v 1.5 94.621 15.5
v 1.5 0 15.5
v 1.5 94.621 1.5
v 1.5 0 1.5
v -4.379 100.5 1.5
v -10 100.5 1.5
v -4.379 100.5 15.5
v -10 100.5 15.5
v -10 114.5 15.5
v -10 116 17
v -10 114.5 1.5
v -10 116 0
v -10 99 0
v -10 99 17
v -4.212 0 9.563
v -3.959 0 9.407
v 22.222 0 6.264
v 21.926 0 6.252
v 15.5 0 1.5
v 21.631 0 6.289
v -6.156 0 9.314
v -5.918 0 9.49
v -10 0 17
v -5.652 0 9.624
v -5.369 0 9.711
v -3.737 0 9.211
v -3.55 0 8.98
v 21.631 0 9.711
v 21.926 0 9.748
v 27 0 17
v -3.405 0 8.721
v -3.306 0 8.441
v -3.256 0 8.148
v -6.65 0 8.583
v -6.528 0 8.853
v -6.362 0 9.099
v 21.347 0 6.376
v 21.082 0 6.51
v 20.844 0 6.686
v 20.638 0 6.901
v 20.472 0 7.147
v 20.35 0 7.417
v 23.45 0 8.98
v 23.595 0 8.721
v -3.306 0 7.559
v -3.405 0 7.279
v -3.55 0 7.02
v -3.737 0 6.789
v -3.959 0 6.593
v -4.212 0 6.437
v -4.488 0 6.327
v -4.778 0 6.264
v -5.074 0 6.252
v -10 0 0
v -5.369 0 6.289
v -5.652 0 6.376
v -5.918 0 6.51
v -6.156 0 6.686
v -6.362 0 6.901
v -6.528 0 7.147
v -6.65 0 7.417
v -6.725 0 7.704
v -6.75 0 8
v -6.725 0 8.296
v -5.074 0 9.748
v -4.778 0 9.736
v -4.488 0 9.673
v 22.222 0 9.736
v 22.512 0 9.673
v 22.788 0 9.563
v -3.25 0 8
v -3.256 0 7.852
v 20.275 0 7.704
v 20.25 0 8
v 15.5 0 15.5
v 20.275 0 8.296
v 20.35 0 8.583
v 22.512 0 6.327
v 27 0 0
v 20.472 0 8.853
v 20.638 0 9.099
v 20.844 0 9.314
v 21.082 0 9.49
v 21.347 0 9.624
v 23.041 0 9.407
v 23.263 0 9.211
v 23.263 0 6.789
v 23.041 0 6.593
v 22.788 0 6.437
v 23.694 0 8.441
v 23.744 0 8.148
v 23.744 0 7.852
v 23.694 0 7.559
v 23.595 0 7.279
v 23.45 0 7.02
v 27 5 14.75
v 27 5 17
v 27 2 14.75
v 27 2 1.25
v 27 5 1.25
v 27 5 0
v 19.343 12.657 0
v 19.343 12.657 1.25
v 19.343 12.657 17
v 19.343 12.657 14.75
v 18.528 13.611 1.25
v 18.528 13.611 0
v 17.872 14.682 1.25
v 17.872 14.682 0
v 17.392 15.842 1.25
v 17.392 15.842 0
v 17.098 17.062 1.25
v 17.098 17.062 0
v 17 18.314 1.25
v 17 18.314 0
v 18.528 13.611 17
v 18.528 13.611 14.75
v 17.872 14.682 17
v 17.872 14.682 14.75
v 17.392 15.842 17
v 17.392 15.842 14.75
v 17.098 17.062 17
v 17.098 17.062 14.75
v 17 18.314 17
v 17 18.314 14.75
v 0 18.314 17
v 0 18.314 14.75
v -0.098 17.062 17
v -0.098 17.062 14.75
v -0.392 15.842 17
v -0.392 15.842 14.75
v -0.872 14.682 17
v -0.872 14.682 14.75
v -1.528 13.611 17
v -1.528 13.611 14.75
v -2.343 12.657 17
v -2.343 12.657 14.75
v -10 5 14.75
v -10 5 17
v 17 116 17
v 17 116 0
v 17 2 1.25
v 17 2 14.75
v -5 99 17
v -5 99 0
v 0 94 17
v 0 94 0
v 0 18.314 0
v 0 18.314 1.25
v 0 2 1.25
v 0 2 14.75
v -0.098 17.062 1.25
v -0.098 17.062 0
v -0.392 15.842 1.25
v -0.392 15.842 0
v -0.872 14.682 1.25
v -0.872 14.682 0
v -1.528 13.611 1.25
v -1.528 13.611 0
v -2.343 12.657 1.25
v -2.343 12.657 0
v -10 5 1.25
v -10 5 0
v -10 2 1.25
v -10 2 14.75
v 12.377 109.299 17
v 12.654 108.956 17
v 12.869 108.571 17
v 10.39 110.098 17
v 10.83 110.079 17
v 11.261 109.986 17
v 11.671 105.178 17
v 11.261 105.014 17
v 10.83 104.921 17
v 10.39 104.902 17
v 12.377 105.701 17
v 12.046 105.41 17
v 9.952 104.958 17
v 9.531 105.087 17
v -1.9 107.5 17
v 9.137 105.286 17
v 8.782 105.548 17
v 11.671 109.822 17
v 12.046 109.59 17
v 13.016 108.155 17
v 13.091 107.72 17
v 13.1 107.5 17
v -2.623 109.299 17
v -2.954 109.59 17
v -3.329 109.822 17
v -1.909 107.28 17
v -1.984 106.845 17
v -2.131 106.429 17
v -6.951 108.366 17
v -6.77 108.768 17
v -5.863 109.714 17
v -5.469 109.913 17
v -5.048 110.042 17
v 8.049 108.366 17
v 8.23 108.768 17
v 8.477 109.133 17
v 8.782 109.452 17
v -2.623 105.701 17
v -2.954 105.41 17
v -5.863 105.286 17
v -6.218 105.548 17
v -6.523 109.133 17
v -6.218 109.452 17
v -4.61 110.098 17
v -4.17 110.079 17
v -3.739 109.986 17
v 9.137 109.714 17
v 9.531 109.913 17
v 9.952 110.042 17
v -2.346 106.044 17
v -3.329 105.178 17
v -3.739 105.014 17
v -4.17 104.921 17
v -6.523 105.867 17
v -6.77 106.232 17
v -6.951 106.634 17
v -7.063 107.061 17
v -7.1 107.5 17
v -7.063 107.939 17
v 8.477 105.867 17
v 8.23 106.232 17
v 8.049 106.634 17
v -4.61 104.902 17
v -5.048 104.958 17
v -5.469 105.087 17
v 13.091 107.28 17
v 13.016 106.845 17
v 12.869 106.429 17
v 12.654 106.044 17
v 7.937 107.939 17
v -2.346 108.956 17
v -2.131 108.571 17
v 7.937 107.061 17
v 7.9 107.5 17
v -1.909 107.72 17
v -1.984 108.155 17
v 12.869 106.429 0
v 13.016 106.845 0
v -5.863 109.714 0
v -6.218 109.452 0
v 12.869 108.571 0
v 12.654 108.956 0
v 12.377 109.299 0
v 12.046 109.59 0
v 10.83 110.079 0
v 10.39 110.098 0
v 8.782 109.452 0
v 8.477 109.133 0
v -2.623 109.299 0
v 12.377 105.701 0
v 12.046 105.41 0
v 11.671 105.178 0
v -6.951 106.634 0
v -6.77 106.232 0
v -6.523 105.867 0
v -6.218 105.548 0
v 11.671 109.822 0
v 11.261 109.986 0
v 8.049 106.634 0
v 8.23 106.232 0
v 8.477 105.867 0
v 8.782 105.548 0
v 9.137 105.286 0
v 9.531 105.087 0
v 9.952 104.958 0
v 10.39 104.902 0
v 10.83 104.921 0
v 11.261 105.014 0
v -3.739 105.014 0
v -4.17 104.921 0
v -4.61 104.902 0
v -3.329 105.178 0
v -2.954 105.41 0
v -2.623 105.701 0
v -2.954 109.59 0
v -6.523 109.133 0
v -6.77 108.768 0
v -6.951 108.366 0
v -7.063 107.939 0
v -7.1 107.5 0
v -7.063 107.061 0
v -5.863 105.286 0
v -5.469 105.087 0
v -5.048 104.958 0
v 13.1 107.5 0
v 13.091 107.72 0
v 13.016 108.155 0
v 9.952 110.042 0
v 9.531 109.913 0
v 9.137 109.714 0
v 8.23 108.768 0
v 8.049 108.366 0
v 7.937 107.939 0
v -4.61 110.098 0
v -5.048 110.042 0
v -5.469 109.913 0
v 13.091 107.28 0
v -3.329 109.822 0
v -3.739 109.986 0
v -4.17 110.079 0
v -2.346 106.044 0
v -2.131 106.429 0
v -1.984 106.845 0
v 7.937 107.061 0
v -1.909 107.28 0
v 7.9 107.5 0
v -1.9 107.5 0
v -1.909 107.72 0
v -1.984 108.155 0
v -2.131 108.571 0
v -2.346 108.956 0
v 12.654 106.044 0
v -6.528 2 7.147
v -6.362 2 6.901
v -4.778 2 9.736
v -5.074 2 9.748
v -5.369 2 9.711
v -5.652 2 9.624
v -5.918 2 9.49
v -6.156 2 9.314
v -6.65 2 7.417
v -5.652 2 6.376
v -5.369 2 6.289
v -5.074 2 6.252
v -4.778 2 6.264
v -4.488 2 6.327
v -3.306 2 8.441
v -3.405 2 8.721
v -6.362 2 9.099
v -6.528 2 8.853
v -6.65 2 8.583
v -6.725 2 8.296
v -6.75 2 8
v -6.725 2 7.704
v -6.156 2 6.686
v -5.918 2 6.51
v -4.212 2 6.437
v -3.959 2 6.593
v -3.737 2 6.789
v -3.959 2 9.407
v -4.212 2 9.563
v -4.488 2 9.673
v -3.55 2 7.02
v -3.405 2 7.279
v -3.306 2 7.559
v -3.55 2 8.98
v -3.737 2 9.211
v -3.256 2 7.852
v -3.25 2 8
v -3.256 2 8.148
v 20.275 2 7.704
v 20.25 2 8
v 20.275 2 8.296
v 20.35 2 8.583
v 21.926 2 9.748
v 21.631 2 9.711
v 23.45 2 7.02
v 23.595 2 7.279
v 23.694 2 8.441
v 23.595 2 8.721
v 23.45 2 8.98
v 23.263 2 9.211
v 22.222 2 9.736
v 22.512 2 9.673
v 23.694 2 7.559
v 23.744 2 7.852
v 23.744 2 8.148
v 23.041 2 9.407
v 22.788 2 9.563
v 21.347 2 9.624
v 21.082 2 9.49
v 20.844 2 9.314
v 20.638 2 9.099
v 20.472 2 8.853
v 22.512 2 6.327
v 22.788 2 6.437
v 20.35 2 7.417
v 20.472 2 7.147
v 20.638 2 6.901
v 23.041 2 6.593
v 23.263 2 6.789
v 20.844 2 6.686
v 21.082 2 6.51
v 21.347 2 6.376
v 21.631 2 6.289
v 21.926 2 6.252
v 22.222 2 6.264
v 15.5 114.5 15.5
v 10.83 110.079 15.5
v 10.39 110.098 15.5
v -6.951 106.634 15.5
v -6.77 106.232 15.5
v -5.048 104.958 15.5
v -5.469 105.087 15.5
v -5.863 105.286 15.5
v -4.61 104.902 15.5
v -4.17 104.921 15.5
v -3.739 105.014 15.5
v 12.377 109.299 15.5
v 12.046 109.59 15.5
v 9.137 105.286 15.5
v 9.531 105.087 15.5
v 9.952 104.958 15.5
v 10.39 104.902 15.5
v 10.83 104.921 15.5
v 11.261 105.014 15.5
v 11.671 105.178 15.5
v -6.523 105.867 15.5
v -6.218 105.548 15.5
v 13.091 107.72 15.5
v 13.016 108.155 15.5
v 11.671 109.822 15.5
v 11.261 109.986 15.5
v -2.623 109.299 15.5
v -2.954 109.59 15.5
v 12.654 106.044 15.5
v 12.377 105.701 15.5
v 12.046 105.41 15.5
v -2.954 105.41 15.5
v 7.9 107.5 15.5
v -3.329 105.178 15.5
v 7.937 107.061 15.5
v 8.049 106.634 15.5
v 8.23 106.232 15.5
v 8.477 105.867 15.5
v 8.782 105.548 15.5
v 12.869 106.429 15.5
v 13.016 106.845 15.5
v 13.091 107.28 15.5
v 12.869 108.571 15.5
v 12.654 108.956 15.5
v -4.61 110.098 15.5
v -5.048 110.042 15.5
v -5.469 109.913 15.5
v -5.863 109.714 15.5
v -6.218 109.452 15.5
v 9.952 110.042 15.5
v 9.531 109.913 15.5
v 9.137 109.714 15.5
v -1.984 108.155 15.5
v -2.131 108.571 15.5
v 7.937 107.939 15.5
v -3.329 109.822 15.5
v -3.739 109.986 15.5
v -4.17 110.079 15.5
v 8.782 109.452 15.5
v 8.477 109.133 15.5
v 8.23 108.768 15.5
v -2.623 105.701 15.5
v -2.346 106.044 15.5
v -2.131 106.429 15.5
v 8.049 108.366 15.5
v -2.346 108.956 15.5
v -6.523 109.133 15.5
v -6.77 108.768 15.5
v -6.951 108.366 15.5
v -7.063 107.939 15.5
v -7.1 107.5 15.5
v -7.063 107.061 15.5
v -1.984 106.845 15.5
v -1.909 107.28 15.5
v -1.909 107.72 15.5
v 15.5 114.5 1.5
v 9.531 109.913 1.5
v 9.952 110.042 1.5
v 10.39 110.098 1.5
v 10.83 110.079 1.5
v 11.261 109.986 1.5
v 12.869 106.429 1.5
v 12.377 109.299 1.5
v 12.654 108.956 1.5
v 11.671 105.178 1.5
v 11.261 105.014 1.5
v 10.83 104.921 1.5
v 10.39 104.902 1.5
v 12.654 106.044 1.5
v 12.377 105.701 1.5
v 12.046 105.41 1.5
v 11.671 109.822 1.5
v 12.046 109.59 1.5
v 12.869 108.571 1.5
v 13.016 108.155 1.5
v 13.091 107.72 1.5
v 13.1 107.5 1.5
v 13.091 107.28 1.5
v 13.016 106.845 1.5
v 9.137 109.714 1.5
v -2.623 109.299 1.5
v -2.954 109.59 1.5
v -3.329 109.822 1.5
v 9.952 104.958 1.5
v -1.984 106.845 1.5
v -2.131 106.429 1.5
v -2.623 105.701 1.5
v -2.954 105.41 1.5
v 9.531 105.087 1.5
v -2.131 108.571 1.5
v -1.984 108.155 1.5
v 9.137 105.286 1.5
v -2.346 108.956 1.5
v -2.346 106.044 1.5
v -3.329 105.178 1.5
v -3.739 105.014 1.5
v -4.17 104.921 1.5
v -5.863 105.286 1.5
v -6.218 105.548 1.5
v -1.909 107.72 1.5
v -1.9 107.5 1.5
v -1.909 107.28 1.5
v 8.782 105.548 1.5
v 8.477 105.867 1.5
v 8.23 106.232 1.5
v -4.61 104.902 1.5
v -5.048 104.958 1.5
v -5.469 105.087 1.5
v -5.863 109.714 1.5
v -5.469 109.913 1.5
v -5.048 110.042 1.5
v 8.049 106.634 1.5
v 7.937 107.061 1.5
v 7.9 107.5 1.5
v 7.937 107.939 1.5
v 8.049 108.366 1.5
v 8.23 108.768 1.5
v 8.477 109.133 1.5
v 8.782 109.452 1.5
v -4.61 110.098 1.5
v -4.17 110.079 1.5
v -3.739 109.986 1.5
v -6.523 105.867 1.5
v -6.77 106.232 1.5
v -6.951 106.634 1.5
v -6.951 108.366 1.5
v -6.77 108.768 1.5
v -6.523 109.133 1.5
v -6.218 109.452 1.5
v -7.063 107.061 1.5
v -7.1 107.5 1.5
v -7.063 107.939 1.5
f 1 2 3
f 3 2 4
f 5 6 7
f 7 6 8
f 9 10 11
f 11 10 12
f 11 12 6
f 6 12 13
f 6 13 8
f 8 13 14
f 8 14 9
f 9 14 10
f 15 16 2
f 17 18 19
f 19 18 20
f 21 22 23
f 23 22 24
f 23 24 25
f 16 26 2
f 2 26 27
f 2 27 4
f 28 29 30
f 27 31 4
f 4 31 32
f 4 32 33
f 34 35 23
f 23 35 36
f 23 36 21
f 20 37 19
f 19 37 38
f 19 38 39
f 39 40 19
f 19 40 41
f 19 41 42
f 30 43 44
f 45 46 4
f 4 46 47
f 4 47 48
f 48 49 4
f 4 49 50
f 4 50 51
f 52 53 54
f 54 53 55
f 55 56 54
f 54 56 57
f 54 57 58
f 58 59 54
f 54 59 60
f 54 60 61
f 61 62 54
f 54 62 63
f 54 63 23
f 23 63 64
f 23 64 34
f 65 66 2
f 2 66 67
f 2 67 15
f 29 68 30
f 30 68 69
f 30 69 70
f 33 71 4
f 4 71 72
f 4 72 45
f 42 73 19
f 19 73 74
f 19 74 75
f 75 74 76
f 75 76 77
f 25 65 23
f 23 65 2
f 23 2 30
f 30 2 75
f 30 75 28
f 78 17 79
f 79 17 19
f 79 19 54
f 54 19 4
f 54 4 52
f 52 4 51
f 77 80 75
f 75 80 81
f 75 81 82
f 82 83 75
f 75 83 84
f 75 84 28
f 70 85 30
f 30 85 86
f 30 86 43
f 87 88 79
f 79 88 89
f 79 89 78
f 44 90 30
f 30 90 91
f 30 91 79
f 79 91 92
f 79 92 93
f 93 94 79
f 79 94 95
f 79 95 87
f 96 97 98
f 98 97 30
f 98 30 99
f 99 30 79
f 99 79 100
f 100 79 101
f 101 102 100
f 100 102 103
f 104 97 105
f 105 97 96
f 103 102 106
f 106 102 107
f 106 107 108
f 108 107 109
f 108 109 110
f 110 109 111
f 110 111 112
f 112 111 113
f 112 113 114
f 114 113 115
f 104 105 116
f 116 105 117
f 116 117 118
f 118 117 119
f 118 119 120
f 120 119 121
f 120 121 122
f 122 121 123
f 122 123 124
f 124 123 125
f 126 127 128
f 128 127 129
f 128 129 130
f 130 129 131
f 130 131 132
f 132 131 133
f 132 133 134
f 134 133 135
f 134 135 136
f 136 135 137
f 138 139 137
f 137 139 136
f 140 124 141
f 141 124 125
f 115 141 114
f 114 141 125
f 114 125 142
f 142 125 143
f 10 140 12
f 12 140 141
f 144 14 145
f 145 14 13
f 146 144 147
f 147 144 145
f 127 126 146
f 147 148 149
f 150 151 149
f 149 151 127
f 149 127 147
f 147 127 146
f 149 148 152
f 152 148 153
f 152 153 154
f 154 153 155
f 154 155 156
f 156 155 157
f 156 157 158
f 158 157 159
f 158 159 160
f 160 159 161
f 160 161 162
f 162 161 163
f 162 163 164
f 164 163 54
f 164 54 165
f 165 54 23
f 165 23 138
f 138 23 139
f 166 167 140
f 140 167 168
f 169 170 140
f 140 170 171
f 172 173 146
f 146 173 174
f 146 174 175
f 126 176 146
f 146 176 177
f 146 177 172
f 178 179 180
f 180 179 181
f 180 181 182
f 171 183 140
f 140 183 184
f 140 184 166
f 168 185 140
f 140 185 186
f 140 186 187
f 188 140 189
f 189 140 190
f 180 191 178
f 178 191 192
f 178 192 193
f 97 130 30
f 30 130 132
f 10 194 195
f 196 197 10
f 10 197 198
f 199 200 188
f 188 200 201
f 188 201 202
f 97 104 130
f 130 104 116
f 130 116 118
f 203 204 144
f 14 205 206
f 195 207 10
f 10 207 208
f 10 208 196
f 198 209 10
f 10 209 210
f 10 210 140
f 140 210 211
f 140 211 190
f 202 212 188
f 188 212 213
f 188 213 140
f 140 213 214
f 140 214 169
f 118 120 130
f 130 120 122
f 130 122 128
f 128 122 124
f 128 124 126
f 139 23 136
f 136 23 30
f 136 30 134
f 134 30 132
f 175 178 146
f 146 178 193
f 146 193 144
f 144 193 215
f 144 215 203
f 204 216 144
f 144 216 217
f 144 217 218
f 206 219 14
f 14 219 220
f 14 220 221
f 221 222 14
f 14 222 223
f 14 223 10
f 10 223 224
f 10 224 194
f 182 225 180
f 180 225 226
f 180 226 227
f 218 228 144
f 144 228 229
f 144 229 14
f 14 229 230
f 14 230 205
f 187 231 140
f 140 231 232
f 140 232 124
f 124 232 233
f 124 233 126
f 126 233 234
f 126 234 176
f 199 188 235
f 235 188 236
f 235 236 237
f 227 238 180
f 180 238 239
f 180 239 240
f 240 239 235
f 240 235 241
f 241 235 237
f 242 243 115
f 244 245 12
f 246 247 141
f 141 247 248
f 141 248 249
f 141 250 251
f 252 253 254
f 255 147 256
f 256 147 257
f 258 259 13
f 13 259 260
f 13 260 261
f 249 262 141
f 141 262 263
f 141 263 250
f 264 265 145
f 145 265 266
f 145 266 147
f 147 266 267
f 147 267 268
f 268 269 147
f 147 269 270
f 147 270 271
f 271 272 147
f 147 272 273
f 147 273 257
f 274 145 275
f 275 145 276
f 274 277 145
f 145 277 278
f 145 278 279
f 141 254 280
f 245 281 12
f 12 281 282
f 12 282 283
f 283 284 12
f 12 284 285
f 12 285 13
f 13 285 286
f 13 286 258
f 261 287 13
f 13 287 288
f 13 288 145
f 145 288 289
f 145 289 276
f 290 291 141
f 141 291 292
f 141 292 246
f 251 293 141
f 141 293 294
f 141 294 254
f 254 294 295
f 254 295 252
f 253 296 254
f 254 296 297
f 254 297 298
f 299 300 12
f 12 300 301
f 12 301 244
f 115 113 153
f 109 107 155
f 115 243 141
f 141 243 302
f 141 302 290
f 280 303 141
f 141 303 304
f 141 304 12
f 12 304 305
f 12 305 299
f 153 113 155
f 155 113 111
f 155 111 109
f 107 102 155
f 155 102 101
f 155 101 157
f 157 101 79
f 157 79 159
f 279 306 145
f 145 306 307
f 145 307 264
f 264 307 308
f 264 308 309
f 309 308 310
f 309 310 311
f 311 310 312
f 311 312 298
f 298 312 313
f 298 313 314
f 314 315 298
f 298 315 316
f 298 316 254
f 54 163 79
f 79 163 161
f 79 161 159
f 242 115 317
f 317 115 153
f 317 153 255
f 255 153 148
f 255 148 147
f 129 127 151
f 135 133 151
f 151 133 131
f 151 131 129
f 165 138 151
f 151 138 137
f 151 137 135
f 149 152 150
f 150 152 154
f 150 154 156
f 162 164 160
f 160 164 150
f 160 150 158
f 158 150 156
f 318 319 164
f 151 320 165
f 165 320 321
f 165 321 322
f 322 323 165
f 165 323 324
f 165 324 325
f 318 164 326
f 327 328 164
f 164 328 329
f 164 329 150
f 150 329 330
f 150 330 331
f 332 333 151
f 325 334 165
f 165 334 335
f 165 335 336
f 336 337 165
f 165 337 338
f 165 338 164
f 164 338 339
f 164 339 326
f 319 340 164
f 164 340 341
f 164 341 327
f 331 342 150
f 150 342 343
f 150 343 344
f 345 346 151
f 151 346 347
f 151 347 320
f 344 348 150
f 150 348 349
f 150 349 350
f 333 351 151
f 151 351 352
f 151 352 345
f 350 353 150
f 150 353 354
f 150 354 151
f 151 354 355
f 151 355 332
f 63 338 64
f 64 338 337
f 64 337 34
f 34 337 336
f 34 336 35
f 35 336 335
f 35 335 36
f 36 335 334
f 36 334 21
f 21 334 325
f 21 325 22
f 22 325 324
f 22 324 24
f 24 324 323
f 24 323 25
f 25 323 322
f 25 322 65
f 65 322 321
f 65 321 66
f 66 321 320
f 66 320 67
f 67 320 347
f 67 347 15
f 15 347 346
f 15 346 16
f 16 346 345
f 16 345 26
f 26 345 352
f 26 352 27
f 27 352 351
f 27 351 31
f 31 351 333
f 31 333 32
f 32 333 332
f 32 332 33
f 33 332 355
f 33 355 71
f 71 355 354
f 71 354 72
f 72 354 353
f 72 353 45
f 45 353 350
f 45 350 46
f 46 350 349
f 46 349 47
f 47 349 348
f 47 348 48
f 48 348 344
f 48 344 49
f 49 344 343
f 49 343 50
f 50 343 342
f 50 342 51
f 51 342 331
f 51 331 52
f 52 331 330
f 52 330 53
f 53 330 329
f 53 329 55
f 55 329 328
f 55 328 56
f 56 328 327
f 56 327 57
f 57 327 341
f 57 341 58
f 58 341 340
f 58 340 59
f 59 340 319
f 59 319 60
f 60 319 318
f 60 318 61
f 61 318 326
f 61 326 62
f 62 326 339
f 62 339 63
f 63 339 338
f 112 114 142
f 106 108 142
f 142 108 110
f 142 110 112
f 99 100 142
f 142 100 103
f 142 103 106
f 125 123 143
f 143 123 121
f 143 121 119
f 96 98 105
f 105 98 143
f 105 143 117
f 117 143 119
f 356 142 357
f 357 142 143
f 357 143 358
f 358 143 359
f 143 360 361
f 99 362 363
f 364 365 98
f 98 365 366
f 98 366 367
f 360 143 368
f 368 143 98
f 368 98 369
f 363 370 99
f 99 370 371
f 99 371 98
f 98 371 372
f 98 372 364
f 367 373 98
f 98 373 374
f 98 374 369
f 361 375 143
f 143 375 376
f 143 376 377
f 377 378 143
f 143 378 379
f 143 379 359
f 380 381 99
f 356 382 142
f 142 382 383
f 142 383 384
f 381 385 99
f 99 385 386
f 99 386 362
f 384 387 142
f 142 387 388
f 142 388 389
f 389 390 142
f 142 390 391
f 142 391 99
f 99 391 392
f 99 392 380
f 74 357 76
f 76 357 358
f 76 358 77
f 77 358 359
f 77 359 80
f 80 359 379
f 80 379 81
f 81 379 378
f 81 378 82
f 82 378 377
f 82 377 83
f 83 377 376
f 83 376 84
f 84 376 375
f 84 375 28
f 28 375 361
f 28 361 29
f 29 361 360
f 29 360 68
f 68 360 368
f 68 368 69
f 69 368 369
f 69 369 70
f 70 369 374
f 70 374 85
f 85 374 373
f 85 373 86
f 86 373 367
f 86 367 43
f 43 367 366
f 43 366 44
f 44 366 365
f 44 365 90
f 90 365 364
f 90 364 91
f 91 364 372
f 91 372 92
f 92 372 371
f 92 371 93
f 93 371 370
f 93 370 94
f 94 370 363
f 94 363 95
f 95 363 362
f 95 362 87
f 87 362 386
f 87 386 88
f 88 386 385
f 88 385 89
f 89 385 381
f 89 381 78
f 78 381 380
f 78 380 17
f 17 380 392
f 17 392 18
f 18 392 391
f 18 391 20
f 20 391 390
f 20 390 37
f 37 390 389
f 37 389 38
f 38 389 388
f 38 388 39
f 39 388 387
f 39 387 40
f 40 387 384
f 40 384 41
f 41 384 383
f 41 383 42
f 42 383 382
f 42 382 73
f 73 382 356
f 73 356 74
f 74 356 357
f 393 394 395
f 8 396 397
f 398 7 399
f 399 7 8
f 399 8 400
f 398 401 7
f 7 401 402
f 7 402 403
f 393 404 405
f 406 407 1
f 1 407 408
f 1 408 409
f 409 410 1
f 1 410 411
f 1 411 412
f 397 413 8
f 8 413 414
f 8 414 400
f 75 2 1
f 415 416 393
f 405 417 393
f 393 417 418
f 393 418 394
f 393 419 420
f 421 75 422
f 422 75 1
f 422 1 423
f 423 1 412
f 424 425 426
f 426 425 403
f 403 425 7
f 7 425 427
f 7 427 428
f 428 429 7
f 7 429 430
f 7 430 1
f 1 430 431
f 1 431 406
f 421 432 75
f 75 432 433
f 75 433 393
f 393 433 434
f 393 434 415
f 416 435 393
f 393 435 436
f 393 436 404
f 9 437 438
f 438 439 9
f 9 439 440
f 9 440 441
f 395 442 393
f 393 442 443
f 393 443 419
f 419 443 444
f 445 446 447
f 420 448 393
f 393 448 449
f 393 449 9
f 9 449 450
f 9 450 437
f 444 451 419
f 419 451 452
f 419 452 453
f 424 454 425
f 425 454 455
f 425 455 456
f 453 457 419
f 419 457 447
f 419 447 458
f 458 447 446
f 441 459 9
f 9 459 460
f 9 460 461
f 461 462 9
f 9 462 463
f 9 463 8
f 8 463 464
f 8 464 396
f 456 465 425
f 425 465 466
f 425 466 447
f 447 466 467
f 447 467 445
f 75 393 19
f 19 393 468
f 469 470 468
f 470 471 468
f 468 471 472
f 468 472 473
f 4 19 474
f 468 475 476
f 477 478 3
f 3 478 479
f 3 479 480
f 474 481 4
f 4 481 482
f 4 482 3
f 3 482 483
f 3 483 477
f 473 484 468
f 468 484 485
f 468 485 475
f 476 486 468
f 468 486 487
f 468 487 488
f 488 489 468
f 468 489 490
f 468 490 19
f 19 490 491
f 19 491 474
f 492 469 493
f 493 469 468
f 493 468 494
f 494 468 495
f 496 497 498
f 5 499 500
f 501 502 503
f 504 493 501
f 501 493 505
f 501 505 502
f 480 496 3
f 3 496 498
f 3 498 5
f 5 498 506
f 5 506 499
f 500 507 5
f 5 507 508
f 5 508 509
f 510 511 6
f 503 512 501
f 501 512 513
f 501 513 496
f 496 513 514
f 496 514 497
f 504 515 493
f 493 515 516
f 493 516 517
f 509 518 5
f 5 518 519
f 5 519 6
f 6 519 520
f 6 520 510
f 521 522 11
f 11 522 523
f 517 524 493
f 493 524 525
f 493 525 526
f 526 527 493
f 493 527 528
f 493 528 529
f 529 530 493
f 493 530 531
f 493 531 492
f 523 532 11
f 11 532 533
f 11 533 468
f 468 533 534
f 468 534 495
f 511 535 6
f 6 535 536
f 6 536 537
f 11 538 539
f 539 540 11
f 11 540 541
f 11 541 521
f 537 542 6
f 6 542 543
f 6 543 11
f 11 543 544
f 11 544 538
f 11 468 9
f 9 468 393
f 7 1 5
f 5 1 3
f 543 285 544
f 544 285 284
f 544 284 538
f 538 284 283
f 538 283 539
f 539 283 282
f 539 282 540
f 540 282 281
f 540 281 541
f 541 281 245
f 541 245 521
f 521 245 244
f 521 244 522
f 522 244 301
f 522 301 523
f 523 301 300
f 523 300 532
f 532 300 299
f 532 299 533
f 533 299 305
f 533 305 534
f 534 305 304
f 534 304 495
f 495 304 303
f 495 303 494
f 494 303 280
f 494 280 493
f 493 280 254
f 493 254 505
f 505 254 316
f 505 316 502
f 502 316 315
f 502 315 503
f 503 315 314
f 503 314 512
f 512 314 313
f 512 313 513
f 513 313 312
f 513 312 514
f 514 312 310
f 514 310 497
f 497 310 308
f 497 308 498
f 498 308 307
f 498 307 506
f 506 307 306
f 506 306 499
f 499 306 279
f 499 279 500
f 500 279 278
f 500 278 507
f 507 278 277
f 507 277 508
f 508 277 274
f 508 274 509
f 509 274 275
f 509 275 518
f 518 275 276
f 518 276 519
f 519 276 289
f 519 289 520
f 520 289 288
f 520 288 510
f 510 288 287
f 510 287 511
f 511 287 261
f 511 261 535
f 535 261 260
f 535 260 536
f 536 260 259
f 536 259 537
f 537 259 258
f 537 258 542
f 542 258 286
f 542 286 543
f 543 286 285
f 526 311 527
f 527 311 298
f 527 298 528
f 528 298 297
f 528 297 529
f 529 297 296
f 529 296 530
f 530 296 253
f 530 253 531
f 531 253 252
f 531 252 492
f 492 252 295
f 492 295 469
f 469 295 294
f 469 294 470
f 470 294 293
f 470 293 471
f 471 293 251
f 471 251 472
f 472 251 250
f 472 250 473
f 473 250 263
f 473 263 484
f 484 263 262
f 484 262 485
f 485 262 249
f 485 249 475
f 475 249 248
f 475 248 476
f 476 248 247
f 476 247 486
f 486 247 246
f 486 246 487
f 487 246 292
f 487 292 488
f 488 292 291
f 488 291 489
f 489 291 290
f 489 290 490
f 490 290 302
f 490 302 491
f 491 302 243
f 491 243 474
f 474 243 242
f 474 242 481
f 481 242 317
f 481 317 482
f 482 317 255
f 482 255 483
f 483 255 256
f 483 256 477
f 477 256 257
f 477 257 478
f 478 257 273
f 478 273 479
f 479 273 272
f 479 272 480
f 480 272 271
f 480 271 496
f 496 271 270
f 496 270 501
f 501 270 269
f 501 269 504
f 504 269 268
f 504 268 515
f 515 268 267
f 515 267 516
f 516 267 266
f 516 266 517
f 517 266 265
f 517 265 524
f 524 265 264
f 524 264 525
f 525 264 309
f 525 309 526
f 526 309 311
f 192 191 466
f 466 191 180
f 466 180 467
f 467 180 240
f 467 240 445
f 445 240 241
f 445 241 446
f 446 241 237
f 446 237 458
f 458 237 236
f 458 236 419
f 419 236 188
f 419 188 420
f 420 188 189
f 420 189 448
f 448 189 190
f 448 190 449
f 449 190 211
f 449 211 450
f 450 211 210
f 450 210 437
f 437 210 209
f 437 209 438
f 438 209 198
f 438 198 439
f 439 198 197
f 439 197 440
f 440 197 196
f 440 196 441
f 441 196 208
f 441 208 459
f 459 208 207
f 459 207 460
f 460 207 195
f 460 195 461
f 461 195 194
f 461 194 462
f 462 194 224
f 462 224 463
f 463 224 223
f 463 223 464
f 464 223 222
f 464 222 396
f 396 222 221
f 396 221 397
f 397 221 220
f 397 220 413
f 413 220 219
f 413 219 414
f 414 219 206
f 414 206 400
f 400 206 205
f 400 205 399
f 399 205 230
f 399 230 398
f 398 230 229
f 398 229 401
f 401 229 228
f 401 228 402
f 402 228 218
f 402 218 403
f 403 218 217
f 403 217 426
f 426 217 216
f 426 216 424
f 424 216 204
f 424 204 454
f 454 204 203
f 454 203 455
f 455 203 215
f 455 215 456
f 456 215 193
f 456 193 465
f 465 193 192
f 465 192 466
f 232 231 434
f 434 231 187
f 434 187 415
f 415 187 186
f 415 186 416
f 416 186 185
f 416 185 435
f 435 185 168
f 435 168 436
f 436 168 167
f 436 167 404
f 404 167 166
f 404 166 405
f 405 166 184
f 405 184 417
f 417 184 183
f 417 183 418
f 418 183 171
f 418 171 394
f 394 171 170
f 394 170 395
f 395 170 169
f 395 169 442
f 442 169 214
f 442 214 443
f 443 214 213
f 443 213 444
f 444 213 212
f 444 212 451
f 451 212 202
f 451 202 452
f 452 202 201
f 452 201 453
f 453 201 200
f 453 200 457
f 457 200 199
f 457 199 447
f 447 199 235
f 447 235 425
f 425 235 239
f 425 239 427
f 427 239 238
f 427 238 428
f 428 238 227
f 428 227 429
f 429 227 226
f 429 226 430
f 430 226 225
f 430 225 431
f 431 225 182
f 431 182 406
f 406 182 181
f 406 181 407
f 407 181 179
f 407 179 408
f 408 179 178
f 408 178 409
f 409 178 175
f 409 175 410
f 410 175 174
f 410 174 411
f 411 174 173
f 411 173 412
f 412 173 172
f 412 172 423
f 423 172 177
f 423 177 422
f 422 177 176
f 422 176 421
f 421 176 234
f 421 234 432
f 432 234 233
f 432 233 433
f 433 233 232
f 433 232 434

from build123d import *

# Parameters (mm, degrees)
BASE_SHAPE_DEPTH    = 17
SKETCH4_W           = 10
SKETCH4_H           = 13.5
WING_CUT_OUTS_DEPTH = 16.5
SKETCH5_R           = 1.75
WING_HOLES_DEPTH    = 119.380741677
SKETCH7_W           = 14
SKETCH7_H           = 14
CUT_EXTRUDE1_DEPTH  = 114.5
SKETCH8_W           = 14
SKETCH8_H           = 14
CUT_EXTRUDE2_DEPTH  = 25.5
CUT_EXTRUDE3_DEPTH  = 14
SKETCH10_R          = 2.6
CUT_EXTRUDE4_DEPTH  = 121.307938225


with BuildPart() as part:
    # Sketch1 → Base Shape (new body)
    with BuildSketch(Plane.XY):
        with BuildLine():
            Line((0, 18.313708499), (0, 94))
            Line((0, 94), (-5, 99))
            Line((-5, 99), (-10, 99))
            Line((-10, 99), (-10, 116))
            Line((-10, 116), (17, 116))
            Line((17, 116), (17, 18.313708499))
            ThreePointArc((17, 18.313708499), (17.60896374, 15.25224104), (19.343145751, 12.656854249))
            Line((19.343145751, 12.656854249), (27, 5))
            Line((27, 5), (27, 0))
            Line((27, 0), (17, 0))
            Line((17, 0), (0, 0))
            Line((0, 0), (-10, 0))
            Line((-10, 0), (-10, 5))
            Line((-10, 5), (-2.343145751, 12.656854249))
            ThreePointArc((-2.343145751, 12.656854249), (-0.60896374, 15.25224104), (0, 18.313708499))
        make_face()
    extrude(amount=BASE_SHAPE_DEPTH)

    # Sketch4 → Wing Cut Outs (cut)
    with BuildSketch(Plane(origin=(0, 2, 0), x_dir=(-1, 0, 0), z_dir=(0, -1, 0))):
        with Locations((5, -8)):
            Rectangle(SKETCH4_W, SKETCH4_H)
    wing_cut_outs = extrude(amount=-WING_CUT_OUTS_DEPTH, mode=Mode.SUBTRACT)

    # Sketch5 → Wing Holes (cut, through all)
    with BuildSketch(Plane(origin=(0, 2, 0), x_dir=(-1, 0, 0), z_dir=(0, -1, 0))):
        with Locations(Location((5, -8, 0), (0, 0, 180))):
            Circle(SKETCH5_R)
    wing_holes = extrude(amount=WING_HOLES_DEPTH, mode=Mode.SUBTRACT)

    # Mirror1: Wing Cut Outs across plane
    add(wing_cut_outs.mirror(Plane(origin=(8.5, 0, 0), x_dir=(0, 0, 1), z_dir=(1, 0, 0))), mode=Mode.SUBTRACT)

    # Mirror2: Wing Holes across plane
    add(wing_holes.mirror(Plane(origin=(8.5, 0, 0), x_dir=(0, 0, 1), z_dir=(1, 0, 0))), mode=Mode.SUBTRACT)

    # Sketch7 → Cut-Extrude1 (cut)
    with BuildSketch(Plane(origin=(0, 0, 0), x_dir=(1, 0, 0), z_dir=(0, 1, 0))):
        with Locations((8.5, -8.5)):
            Rectangle(SKETCH7_W, SKETCH7_H)
    extrude(amount=CUT_EXTRUDE1_DEPTH, mode=Mode.SUBTRACT)

    # Sketch8 → Cut-Extrude2 (cut)
    with BuildSketch(Plane(origin=(-10, 0, 0), x_dir=(0, 0, -1), z_dir=(1, 0, 0))):
        with Locations((-8.5, 107.5)):
            Rectangle(SKETCH8_W, SKETCH8_H)
    extrude(amount=CUT_EXTRUDE2_DEPTH, mode=Mode.SUBTRACT)

    # Sketch9 → Cut-Extrude3 (cut)
    with BuildSketch(Plane.XY.offset(1.5)):
        Polygon((1.5, 94.621320344), (-4.378679656, 100.5), (1.5, 100.5), align=None)
    extrude(amount=CUT_EXTRUDE3_DEPTH, mode=Mode.SUBTRACT)

    # Sketch10 → Cut-Extrude4 (cut, through all)
    with BuildSketch(Plane.XY):
        with Locations((10.5, 107.5)):
            Circle(SKETCH10_R)
        with Locations((-4.5, 107.5)):
            Circle(SKETCH10_R)
    extrude(amount=CUT_EXTRUDE4_DEPTH, mode=Mode.SUBTRACT)


solid = part.part
